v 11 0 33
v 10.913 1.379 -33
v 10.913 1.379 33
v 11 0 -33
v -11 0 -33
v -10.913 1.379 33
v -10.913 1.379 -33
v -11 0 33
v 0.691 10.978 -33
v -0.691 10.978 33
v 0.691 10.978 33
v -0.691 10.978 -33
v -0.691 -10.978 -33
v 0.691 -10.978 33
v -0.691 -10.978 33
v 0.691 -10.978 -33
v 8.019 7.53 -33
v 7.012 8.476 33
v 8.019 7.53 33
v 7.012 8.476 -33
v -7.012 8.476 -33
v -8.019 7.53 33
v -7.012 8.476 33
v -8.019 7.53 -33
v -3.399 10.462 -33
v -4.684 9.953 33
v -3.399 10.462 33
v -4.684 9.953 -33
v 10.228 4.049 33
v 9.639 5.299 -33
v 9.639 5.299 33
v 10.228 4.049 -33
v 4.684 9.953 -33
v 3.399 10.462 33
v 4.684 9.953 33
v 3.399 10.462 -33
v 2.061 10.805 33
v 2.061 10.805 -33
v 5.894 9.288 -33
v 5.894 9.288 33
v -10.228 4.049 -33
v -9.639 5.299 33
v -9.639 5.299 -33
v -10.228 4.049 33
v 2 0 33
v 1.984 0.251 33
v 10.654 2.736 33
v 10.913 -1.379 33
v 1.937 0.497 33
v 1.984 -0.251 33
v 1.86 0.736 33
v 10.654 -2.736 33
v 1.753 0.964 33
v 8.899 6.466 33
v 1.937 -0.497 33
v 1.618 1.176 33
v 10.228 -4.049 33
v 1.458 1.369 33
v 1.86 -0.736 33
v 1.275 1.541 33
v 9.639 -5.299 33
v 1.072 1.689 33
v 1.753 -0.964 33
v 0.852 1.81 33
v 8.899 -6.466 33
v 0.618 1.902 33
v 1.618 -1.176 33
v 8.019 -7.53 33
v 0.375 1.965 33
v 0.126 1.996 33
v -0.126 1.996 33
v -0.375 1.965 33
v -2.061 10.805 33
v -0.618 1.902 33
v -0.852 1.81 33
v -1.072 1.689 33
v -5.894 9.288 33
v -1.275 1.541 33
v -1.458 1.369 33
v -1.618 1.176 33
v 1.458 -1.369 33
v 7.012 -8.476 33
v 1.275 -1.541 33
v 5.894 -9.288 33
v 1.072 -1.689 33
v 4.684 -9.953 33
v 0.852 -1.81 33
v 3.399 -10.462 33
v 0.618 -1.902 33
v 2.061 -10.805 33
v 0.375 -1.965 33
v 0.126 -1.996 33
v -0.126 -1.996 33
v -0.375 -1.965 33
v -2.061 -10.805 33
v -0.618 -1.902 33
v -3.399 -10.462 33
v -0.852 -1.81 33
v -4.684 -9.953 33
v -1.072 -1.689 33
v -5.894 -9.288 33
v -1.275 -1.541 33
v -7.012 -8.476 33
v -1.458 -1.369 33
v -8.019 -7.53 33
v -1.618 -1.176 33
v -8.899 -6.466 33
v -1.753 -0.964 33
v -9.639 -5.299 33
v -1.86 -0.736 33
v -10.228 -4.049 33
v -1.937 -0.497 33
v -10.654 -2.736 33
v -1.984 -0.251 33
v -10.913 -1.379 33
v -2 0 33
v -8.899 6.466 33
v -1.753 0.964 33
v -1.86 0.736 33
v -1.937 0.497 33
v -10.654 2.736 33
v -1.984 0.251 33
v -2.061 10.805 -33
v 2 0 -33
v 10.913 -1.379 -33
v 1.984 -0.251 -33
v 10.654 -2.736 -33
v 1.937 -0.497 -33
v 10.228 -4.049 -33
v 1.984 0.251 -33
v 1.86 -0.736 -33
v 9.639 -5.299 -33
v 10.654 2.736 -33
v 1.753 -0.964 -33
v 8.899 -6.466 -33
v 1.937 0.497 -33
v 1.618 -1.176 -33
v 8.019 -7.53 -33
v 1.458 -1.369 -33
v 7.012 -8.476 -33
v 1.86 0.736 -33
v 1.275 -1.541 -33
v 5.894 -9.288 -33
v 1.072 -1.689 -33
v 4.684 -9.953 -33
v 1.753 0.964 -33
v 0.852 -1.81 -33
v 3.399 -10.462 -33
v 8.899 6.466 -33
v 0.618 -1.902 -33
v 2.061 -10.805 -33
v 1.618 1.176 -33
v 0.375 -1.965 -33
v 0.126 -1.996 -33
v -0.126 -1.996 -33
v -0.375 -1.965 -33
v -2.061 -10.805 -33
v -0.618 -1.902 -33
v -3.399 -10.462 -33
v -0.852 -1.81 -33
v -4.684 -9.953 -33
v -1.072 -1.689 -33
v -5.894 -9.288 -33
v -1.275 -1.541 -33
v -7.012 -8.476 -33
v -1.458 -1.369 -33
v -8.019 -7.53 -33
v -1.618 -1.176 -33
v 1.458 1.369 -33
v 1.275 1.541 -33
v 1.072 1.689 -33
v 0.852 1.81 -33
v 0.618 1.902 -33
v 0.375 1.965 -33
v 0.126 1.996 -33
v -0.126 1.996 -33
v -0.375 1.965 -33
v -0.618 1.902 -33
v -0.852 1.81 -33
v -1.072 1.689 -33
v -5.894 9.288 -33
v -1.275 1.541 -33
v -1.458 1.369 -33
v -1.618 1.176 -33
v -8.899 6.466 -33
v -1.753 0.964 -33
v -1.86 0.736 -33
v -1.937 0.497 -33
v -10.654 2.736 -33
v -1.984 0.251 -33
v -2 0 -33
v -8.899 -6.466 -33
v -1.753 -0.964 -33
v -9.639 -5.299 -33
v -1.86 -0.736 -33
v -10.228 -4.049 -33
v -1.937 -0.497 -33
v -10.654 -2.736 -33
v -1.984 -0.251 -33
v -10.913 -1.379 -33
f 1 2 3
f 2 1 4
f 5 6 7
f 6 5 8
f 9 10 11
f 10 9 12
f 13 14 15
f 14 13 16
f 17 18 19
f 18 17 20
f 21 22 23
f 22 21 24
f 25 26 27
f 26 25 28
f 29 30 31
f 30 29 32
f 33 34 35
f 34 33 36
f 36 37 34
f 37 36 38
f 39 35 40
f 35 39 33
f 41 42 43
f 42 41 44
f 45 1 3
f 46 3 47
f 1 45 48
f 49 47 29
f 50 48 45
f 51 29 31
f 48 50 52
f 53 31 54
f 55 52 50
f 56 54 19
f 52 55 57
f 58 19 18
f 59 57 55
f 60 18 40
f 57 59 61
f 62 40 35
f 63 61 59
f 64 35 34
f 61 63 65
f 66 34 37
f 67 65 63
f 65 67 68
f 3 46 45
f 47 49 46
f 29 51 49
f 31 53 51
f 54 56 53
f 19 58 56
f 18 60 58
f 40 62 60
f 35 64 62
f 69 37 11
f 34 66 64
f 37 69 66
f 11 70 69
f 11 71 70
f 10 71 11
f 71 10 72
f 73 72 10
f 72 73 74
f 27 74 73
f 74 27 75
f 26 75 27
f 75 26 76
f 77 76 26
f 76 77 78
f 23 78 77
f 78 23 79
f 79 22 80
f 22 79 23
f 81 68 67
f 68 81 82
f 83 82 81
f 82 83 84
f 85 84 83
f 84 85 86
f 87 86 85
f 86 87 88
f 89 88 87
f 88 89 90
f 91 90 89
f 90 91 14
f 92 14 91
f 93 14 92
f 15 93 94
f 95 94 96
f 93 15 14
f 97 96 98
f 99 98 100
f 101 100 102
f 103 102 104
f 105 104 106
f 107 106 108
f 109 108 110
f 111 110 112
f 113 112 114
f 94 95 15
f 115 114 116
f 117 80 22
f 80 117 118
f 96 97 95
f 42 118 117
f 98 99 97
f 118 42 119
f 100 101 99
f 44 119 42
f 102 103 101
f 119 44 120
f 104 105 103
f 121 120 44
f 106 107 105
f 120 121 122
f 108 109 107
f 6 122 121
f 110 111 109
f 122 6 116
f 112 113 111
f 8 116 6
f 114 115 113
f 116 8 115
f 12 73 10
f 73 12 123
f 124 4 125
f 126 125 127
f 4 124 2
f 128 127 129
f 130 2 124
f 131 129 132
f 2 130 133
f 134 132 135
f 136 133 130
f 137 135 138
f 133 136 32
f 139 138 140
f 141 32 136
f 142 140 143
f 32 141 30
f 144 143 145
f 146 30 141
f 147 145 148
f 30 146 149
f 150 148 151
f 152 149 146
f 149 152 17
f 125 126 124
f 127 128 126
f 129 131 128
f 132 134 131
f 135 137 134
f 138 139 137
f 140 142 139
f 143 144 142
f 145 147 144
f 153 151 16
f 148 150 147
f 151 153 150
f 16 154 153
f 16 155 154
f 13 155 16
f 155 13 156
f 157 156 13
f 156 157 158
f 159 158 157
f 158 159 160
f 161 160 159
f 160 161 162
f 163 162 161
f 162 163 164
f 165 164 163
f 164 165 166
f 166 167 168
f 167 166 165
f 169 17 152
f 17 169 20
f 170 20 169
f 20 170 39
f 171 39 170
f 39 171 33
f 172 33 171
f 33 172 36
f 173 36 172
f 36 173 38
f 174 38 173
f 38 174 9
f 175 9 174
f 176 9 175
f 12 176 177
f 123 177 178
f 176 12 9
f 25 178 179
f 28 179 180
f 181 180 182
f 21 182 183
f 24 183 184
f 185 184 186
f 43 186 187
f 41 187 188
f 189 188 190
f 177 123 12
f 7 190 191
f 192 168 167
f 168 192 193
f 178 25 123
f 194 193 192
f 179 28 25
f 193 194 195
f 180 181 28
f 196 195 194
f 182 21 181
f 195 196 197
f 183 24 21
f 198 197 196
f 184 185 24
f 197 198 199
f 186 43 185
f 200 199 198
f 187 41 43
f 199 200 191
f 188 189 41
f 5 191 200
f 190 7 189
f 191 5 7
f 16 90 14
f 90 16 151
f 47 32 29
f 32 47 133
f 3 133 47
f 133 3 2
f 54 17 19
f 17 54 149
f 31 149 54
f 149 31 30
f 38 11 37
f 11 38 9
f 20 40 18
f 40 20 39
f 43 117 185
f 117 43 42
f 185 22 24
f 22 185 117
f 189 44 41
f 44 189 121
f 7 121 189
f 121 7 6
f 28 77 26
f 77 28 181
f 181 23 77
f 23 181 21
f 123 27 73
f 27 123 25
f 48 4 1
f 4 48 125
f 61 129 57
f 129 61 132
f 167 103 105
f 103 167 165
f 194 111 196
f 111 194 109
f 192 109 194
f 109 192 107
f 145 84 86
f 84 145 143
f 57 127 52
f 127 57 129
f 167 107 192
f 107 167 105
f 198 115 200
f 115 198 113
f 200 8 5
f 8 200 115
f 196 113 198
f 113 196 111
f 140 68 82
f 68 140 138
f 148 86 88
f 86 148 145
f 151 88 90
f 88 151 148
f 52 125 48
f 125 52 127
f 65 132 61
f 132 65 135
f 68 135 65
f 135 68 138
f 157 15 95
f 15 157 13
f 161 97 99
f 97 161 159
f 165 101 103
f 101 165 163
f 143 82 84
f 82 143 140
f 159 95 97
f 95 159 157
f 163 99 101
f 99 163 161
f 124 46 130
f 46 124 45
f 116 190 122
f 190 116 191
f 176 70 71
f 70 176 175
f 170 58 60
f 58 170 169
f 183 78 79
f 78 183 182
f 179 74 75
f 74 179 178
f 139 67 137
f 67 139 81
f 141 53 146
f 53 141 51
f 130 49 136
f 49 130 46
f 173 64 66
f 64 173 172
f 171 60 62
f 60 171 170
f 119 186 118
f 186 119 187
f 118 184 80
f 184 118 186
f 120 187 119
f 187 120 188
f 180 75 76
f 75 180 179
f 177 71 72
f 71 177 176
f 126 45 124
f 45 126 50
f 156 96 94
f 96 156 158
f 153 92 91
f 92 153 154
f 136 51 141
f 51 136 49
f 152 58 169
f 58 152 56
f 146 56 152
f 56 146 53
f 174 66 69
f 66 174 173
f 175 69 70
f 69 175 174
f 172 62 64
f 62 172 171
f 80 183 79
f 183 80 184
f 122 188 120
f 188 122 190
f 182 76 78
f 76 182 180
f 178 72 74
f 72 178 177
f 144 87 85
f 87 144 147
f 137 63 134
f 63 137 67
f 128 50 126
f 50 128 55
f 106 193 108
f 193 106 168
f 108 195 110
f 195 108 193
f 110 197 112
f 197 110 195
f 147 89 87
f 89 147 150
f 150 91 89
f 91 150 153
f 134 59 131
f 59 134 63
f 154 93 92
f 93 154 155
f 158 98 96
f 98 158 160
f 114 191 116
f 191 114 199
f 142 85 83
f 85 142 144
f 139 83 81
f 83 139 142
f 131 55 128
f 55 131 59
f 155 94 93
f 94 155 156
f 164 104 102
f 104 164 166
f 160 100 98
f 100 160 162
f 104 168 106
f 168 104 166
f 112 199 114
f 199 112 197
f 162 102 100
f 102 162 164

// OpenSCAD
$fn = 50;


difference() {
	union() {
		translate(v = [0, 0, -33.0000000000]) {
			cylinder(h = 66, r = 11.0000000000);
		}
	}
	union() {
		translate(v = [0, 0, -100.0000000000]) {
			cylinder(h = 200, r = 2);
		}
	}
}
